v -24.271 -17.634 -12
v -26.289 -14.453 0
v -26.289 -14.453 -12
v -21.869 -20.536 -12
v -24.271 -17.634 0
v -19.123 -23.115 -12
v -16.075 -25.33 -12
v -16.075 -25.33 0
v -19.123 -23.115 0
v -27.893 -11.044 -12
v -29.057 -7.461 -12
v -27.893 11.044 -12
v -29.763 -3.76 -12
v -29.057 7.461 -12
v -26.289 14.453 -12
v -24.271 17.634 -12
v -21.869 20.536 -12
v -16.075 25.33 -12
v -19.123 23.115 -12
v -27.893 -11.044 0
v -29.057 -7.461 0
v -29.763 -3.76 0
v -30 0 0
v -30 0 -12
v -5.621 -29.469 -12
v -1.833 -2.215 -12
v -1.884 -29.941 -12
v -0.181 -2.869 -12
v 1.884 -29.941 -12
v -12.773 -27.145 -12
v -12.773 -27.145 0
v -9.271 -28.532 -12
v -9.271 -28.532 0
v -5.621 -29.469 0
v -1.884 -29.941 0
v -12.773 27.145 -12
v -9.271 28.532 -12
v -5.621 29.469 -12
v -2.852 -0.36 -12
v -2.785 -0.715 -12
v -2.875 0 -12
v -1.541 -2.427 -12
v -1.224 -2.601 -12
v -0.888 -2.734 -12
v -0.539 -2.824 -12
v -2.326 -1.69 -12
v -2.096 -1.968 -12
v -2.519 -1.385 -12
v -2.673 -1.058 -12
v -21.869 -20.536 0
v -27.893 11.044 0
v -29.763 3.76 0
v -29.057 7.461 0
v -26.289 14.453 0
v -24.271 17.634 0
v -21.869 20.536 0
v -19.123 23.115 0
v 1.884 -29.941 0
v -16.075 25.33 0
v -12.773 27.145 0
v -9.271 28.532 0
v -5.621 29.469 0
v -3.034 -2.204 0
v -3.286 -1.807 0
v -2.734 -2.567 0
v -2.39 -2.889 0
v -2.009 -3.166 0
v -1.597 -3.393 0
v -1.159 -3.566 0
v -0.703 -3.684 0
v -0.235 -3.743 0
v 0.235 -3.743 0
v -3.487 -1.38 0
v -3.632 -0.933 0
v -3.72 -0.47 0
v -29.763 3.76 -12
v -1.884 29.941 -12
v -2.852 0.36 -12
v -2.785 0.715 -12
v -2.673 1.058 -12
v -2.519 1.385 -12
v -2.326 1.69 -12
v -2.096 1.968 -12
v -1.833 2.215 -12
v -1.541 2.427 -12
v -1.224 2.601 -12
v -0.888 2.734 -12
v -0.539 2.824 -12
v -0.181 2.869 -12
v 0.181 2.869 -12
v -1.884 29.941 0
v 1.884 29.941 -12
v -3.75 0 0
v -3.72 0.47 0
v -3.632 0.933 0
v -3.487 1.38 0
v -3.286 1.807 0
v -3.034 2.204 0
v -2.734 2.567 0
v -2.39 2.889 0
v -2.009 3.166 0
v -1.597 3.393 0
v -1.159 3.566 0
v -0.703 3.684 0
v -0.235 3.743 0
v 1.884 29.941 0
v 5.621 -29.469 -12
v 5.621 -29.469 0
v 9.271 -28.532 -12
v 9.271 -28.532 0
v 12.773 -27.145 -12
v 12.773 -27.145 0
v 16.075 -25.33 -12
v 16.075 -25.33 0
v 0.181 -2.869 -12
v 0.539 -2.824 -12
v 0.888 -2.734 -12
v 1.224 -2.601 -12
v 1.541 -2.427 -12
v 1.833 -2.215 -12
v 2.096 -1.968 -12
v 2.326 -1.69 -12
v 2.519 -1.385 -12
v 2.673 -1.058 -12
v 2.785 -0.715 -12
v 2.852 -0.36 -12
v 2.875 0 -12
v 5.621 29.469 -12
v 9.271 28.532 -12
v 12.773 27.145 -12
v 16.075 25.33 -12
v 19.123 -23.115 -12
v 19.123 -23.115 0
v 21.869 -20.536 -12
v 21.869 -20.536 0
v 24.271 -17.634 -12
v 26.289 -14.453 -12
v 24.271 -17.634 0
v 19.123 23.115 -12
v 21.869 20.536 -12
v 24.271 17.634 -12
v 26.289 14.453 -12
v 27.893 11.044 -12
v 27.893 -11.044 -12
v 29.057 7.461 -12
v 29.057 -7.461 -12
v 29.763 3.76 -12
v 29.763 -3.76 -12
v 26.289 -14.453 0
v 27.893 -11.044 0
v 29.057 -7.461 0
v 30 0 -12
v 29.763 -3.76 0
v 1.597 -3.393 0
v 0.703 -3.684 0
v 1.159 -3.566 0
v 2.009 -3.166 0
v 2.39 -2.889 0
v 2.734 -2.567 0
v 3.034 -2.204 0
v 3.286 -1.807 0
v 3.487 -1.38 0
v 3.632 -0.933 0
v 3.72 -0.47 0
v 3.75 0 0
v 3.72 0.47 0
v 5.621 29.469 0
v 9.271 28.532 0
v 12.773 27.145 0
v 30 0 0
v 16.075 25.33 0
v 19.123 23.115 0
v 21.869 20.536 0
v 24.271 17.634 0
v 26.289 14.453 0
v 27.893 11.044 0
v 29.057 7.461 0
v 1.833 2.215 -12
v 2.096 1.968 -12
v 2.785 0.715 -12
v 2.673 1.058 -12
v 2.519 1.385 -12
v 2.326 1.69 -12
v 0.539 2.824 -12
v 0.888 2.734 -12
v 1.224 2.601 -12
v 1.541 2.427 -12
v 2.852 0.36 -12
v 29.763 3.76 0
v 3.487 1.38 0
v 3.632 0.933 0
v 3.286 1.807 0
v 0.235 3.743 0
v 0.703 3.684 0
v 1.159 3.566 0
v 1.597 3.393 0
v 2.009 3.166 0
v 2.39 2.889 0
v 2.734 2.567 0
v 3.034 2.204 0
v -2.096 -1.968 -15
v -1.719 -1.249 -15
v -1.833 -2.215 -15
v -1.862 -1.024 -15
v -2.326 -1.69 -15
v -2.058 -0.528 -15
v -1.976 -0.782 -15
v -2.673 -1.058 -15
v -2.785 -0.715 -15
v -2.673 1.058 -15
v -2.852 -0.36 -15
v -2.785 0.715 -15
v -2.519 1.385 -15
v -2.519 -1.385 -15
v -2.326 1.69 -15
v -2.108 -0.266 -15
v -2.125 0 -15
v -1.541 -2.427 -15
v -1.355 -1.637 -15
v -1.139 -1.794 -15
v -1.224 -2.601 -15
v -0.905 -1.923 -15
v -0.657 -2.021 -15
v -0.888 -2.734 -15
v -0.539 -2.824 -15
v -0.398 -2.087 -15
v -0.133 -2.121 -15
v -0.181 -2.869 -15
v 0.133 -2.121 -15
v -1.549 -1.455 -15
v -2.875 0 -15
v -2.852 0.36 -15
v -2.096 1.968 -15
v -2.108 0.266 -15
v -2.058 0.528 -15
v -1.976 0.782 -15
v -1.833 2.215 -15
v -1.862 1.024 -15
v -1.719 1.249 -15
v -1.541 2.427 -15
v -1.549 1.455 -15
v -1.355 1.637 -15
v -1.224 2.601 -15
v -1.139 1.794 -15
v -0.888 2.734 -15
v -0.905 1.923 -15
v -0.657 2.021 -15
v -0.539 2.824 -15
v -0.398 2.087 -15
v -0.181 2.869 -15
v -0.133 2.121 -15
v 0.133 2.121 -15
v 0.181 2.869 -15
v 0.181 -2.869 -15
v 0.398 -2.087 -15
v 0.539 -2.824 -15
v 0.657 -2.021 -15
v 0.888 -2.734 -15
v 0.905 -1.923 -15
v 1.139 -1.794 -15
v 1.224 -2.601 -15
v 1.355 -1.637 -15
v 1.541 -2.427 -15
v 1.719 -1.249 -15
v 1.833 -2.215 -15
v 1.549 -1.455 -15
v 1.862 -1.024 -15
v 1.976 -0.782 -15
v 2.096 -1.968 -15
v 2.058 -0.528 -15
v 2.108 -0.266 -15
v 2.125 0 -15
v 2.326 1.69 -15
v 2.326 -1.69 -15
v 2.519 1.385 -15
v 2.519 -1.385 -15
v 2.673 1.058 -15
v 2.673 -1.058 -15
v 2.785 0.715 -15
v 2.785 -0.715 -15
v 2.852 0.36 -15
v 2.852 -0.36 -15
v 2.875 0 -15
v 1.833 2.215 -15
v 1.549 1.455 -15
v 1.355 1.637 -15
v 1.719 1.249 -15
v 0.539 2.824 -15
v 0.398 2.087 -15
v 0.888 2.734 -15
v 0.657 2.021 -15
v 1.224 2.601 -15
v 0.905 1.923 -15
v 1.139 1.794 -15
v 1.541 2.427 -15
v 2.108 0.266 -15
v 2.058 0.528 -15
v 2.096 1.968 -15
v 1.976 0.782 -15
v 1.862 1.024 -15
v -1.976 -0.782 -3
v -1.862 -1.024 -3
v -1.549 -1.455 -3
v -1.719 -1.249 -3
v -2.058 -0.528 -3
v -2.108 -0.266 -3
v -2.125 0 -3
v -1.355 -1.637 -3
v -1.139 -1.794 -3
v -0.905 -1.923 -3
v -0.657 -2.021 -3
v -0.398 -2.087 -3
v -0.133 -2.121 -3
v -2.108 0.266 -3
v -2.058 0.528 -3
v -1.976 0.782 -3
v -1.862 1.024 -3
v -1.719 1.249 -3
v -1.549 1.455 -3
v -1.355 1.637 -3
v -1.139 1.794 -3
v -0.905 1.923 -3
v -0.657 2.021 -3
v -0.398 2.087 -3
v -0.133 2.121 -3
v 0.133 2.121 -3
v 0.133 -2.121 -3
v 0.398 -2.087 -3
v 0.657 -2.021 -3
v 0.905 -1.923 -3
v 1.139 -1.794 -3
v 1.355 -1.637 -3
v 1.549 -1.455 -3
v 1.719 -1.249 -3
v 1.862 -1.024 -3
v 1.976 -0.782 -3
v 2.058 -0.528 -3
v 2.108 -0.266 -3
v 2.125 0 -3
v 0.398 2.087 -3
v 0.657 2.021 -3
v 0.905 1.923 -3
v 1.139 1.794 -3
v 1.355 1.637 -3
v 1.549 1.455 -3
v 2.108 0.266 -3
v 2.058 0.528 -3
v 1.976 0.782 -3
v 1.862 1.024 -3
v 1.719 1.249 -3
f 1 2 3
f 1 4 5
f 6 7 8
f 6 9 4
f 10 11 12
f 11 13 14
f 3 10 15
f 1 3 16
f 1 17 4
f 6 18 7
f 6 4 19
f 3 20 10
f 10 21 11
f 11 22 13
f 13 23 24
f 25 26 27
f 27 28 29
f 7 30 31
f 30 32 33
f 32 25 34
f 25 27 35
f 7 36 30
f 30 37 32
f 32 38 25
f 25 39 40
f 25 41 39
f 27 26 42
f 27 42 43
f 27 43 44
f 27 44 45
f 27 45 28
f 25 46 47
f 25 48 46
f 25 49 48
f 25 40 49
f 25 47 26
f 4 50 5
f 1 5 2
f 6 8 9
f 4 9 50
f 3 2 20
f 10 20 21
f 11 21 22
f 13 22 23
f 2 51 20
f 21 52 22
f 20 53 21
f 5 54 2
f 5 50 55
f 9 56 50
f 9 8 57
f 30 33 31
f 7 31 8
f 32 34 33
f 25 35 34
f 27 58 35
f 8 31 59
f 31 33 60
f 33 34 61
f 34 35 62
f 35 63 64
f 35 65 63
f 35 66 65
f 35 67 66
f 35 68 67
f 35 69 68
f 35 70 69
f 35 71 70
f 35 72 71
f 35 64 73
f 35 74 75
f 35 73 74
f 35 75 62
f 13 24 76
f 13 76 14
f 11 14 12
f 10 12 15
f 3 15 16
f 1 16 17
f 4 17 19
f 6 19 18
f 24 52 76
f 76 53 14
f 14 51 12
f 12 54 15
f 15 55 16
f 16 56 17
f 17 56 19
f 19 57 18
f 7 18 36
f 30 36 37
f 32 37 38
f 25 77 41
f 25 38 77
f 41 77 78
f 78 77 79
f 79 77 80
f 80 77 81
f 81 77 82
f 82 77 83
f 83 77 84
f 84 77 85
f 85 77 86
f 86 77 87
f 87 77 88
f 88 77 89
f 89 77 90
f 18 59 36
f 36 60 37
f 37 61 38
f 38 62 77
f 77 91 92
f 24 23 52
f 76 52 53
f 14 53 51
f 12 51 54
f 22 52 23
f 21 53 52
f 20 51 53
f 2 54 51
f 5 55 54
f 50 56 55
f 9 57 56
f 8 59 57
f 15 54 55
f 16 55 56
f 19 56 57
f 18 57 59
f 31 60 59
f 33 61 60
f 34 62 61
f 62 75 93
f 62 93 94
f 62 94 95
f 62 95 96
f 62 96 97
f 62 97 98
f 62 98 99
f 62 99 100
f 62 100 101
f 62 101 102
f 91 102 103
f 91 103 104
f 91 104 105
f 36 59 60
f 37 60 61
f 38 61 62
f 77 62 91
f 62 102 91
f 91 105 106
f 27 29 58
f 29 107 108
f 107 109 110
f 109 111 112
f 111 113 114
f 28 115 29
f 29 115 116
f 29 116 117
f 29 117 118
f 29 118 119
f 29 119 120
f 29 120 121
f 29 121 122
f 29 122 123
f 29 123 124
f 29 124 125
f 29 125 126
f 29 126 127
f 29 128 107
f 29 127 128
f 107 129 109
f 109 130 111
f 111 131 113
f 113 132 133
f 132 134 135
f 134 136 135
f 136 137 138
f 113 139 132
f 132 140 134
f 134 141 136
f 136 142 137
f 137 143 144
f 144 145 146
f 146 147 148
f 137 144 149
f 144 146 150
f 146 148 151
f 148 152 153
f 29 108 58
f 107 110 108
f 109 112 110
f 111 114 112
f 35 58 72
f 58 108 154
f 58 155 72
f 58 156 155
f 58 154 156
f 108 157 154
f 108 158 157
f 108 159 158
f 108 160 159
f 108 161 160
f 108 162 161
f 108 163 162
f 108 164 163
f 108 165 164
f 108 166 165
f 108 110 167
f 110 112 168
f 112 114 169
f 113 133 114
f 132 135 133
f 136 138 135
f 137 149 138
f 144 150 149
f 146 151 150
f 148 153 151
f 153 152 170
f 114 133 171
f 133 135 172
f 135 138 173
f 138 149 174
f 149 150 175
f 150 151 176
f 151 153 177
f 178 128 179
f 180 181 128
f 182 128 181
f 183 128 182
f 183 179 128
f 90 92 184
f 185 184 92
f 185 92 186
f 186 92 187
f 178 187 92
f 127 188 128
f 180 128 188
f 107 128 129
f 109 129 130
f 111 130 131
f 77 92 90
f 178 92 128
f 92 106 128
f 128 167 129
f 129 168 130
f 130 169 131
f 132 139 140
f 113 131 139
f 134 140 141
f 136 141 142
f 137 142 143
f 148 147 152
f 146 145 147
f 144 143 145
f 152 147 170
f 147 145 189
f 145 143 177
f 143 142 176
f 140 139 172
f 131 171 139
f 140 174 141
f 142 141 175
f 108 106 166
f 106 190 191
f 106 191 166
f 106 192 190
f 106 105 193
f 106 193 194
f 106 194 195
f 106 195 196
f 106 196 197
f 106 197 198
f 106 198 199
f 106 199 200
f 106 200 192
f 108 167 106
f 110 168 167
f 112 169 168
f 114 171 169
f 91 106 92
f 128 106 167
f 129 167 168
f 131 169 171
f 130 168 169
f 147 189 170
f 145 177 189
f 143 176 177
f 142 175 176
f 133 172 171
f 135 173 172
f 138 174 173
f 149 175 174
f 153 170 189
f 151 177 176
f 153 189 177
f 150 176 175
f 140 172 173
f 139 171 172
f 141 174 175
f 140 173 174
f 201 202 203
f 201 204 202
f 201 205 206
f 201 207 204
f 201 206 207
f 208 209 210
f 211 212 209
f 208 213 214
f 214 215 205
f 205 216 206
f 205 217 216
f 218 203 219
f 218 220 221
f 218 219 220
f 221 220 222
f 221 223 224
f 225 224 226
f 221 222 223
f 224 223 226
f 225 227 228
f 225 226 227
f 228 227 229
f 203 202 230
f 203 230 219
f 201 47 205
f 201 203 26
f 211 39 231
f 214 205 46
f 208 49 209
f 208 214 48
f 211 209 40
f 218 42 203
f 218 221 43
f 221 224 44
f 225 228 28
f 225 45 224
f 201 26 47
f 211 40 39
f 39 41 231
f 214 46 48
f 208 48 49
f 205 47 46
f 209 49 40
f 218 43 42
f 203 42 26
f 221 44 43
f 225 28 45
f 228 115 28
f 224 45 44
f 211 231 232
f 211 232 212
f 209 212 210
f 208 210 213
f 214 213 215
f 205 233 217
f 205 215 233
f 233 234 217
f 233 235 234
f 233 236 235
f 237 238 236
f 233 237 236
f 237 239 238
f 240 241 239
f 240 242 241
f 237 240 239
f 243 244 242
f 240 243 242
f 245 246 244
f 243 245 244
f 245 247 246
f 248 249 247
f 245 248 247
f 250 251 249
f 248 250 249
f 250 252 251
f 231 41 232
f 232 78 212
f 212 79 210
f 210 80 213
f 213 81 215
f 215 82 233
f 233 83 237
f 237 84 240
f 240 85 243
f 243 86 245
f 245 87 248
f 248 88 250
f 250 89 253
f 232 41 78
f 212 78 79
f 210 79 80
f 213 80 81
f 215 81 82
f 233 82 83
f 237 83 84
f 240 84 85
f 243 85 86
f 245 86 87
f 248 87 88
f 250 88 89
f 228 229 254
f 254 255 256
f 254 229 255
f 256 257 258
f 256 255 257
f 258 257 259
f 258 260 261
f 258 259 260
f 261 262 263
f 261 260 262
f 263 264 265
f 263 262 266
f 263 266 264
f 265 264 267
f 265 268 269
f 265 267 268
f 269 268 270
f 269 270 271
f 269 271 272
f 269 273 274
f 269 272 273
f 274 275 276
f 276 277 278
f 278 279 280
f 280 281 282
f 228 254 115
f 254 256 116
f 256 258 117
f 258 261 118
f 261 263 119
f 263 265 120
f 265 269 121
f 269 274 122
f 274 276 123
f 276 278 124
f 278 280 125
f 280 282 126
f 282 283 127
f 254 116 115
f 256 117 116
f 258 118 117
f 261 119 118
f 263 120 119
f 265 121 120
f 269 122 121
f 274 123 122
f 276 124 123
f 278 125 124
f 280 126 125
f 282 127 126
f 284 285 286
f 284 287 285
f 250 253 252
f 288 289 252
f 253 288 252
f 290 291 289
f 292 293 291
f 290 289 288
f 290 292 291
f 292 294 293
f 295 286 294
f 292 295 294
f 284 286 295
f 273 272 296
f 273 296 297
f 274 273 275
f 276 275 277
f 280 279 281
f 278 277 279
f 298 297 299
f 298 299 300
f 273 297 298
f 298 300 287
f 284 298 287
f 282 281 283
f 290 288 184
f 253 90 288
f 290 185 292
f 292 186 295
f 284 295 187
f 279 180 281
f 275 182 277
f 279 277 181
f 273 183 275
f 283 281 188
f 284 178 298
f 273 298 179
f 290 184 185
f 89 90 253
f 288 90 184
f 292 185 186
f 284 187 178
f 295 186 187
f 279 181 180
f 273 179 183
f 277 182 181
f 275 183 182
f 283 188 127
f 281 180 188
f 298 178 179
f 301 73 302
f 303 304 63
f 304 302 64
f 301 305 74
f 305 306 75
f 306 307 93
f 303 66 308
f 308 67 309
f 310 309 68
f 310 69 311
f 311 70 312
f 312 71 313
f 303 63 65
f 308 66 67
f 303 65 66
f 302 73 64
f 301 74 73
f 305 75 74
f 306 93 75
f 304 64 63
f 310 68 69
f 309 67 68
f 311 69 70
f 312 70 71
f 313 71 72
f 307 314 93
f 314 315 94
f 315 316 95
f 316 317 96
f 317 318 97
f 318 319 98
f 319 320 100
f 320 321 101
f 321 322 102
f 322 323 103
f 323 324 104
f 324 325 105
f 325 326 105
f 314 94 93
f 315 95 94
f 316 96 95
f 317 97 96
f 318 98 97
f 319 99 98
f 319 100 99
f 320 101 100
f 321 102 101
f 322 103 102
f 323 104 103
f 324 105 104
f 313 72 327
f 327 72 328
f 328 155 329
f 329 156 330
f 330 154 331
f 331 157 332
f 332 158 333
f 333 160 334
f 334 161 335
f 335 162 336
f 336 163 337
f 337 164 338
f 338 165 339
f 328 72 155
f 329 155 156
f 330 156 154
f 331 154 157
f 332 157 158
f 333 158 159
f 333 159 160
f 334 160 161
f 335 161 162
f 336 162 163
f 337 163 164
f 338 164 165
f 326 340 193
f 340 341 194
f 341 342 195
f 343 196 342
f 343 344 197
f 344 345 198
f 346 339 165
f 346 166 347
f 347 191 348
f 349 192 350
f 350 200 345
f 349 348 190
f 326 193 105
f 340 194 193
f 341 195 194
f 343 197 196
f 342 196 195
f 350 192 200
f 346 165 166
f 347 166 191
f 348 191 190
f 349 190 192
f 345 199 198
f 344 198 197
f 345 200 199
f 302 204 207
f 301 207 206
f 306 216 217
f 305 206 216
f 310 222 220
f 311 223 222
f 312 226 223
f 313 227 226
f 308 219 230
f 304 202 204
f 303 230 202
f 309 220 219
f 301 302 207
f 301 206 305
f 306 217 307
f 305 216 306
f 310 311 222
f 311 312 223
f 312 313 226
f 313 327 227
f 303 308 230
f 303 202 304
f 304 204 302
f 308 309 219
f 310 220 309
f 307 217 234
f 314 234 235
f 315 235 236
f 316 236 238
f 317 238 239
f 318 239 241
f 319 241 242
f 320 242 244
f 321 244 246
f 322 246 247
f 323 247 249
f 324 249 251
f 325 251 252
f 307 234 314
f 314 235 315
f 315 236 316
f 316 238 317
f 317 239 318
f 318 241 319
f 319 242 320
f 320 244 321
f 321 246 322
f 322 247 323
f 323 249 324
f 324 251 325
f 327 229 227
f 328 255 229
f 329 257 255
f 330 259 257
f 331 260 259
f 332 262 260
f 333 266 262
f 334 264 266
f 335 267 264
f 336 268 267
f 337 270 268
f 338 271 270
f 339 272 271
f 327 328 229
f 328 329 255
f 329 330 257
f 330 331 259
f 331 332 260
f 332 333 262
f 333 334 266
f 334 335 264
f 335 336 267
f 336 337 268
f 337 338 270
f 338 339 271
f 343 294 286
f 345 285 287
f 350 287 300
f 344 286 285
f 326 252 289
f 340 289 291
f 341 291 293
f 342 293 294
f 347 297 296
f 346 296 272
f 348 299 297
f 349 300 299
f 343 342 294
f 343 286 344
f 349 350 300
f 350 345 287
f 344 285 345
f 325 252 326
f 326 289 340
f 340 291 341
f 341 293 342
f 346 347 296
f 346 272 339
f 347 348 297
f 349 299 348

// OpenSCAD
$fn = 50;


difference() {
	union() {
		translate(v = [0, 0, -12.0000000000]) {
			cylinder(h = 12, r = 30.0000000000);
		}
		#translate(v = [0, 0, -15.0000000000]) {
			cylinder(h = 15, r = 2.8750000000);
		}
	}
	union() {
		translate(v = [0, 0, 0]) {
			rotate(a = [0, 0, 0]) {
				difference() {
					union() {
						translate(v = [0, 0, -15.0000000000]) {
							cylinder(h = 15, r = 2.0000000000);
						}
						translate(v = [0, 0, -3]) {
							cylinder(h = 3, r1 = 2.1250000000, r2 = 3.7500000000);
						}
						translate(v = [0, 0, -15.0000000000]) {
							cylinder(h = 15, r = 2.1250000000);
						}
						translate(v = [0, 0, -15.0000000000]) {
							cylinder(h = 15, r = 2.0000000000);
						}
					}
					union();
				}
			}
		}
	}
}
